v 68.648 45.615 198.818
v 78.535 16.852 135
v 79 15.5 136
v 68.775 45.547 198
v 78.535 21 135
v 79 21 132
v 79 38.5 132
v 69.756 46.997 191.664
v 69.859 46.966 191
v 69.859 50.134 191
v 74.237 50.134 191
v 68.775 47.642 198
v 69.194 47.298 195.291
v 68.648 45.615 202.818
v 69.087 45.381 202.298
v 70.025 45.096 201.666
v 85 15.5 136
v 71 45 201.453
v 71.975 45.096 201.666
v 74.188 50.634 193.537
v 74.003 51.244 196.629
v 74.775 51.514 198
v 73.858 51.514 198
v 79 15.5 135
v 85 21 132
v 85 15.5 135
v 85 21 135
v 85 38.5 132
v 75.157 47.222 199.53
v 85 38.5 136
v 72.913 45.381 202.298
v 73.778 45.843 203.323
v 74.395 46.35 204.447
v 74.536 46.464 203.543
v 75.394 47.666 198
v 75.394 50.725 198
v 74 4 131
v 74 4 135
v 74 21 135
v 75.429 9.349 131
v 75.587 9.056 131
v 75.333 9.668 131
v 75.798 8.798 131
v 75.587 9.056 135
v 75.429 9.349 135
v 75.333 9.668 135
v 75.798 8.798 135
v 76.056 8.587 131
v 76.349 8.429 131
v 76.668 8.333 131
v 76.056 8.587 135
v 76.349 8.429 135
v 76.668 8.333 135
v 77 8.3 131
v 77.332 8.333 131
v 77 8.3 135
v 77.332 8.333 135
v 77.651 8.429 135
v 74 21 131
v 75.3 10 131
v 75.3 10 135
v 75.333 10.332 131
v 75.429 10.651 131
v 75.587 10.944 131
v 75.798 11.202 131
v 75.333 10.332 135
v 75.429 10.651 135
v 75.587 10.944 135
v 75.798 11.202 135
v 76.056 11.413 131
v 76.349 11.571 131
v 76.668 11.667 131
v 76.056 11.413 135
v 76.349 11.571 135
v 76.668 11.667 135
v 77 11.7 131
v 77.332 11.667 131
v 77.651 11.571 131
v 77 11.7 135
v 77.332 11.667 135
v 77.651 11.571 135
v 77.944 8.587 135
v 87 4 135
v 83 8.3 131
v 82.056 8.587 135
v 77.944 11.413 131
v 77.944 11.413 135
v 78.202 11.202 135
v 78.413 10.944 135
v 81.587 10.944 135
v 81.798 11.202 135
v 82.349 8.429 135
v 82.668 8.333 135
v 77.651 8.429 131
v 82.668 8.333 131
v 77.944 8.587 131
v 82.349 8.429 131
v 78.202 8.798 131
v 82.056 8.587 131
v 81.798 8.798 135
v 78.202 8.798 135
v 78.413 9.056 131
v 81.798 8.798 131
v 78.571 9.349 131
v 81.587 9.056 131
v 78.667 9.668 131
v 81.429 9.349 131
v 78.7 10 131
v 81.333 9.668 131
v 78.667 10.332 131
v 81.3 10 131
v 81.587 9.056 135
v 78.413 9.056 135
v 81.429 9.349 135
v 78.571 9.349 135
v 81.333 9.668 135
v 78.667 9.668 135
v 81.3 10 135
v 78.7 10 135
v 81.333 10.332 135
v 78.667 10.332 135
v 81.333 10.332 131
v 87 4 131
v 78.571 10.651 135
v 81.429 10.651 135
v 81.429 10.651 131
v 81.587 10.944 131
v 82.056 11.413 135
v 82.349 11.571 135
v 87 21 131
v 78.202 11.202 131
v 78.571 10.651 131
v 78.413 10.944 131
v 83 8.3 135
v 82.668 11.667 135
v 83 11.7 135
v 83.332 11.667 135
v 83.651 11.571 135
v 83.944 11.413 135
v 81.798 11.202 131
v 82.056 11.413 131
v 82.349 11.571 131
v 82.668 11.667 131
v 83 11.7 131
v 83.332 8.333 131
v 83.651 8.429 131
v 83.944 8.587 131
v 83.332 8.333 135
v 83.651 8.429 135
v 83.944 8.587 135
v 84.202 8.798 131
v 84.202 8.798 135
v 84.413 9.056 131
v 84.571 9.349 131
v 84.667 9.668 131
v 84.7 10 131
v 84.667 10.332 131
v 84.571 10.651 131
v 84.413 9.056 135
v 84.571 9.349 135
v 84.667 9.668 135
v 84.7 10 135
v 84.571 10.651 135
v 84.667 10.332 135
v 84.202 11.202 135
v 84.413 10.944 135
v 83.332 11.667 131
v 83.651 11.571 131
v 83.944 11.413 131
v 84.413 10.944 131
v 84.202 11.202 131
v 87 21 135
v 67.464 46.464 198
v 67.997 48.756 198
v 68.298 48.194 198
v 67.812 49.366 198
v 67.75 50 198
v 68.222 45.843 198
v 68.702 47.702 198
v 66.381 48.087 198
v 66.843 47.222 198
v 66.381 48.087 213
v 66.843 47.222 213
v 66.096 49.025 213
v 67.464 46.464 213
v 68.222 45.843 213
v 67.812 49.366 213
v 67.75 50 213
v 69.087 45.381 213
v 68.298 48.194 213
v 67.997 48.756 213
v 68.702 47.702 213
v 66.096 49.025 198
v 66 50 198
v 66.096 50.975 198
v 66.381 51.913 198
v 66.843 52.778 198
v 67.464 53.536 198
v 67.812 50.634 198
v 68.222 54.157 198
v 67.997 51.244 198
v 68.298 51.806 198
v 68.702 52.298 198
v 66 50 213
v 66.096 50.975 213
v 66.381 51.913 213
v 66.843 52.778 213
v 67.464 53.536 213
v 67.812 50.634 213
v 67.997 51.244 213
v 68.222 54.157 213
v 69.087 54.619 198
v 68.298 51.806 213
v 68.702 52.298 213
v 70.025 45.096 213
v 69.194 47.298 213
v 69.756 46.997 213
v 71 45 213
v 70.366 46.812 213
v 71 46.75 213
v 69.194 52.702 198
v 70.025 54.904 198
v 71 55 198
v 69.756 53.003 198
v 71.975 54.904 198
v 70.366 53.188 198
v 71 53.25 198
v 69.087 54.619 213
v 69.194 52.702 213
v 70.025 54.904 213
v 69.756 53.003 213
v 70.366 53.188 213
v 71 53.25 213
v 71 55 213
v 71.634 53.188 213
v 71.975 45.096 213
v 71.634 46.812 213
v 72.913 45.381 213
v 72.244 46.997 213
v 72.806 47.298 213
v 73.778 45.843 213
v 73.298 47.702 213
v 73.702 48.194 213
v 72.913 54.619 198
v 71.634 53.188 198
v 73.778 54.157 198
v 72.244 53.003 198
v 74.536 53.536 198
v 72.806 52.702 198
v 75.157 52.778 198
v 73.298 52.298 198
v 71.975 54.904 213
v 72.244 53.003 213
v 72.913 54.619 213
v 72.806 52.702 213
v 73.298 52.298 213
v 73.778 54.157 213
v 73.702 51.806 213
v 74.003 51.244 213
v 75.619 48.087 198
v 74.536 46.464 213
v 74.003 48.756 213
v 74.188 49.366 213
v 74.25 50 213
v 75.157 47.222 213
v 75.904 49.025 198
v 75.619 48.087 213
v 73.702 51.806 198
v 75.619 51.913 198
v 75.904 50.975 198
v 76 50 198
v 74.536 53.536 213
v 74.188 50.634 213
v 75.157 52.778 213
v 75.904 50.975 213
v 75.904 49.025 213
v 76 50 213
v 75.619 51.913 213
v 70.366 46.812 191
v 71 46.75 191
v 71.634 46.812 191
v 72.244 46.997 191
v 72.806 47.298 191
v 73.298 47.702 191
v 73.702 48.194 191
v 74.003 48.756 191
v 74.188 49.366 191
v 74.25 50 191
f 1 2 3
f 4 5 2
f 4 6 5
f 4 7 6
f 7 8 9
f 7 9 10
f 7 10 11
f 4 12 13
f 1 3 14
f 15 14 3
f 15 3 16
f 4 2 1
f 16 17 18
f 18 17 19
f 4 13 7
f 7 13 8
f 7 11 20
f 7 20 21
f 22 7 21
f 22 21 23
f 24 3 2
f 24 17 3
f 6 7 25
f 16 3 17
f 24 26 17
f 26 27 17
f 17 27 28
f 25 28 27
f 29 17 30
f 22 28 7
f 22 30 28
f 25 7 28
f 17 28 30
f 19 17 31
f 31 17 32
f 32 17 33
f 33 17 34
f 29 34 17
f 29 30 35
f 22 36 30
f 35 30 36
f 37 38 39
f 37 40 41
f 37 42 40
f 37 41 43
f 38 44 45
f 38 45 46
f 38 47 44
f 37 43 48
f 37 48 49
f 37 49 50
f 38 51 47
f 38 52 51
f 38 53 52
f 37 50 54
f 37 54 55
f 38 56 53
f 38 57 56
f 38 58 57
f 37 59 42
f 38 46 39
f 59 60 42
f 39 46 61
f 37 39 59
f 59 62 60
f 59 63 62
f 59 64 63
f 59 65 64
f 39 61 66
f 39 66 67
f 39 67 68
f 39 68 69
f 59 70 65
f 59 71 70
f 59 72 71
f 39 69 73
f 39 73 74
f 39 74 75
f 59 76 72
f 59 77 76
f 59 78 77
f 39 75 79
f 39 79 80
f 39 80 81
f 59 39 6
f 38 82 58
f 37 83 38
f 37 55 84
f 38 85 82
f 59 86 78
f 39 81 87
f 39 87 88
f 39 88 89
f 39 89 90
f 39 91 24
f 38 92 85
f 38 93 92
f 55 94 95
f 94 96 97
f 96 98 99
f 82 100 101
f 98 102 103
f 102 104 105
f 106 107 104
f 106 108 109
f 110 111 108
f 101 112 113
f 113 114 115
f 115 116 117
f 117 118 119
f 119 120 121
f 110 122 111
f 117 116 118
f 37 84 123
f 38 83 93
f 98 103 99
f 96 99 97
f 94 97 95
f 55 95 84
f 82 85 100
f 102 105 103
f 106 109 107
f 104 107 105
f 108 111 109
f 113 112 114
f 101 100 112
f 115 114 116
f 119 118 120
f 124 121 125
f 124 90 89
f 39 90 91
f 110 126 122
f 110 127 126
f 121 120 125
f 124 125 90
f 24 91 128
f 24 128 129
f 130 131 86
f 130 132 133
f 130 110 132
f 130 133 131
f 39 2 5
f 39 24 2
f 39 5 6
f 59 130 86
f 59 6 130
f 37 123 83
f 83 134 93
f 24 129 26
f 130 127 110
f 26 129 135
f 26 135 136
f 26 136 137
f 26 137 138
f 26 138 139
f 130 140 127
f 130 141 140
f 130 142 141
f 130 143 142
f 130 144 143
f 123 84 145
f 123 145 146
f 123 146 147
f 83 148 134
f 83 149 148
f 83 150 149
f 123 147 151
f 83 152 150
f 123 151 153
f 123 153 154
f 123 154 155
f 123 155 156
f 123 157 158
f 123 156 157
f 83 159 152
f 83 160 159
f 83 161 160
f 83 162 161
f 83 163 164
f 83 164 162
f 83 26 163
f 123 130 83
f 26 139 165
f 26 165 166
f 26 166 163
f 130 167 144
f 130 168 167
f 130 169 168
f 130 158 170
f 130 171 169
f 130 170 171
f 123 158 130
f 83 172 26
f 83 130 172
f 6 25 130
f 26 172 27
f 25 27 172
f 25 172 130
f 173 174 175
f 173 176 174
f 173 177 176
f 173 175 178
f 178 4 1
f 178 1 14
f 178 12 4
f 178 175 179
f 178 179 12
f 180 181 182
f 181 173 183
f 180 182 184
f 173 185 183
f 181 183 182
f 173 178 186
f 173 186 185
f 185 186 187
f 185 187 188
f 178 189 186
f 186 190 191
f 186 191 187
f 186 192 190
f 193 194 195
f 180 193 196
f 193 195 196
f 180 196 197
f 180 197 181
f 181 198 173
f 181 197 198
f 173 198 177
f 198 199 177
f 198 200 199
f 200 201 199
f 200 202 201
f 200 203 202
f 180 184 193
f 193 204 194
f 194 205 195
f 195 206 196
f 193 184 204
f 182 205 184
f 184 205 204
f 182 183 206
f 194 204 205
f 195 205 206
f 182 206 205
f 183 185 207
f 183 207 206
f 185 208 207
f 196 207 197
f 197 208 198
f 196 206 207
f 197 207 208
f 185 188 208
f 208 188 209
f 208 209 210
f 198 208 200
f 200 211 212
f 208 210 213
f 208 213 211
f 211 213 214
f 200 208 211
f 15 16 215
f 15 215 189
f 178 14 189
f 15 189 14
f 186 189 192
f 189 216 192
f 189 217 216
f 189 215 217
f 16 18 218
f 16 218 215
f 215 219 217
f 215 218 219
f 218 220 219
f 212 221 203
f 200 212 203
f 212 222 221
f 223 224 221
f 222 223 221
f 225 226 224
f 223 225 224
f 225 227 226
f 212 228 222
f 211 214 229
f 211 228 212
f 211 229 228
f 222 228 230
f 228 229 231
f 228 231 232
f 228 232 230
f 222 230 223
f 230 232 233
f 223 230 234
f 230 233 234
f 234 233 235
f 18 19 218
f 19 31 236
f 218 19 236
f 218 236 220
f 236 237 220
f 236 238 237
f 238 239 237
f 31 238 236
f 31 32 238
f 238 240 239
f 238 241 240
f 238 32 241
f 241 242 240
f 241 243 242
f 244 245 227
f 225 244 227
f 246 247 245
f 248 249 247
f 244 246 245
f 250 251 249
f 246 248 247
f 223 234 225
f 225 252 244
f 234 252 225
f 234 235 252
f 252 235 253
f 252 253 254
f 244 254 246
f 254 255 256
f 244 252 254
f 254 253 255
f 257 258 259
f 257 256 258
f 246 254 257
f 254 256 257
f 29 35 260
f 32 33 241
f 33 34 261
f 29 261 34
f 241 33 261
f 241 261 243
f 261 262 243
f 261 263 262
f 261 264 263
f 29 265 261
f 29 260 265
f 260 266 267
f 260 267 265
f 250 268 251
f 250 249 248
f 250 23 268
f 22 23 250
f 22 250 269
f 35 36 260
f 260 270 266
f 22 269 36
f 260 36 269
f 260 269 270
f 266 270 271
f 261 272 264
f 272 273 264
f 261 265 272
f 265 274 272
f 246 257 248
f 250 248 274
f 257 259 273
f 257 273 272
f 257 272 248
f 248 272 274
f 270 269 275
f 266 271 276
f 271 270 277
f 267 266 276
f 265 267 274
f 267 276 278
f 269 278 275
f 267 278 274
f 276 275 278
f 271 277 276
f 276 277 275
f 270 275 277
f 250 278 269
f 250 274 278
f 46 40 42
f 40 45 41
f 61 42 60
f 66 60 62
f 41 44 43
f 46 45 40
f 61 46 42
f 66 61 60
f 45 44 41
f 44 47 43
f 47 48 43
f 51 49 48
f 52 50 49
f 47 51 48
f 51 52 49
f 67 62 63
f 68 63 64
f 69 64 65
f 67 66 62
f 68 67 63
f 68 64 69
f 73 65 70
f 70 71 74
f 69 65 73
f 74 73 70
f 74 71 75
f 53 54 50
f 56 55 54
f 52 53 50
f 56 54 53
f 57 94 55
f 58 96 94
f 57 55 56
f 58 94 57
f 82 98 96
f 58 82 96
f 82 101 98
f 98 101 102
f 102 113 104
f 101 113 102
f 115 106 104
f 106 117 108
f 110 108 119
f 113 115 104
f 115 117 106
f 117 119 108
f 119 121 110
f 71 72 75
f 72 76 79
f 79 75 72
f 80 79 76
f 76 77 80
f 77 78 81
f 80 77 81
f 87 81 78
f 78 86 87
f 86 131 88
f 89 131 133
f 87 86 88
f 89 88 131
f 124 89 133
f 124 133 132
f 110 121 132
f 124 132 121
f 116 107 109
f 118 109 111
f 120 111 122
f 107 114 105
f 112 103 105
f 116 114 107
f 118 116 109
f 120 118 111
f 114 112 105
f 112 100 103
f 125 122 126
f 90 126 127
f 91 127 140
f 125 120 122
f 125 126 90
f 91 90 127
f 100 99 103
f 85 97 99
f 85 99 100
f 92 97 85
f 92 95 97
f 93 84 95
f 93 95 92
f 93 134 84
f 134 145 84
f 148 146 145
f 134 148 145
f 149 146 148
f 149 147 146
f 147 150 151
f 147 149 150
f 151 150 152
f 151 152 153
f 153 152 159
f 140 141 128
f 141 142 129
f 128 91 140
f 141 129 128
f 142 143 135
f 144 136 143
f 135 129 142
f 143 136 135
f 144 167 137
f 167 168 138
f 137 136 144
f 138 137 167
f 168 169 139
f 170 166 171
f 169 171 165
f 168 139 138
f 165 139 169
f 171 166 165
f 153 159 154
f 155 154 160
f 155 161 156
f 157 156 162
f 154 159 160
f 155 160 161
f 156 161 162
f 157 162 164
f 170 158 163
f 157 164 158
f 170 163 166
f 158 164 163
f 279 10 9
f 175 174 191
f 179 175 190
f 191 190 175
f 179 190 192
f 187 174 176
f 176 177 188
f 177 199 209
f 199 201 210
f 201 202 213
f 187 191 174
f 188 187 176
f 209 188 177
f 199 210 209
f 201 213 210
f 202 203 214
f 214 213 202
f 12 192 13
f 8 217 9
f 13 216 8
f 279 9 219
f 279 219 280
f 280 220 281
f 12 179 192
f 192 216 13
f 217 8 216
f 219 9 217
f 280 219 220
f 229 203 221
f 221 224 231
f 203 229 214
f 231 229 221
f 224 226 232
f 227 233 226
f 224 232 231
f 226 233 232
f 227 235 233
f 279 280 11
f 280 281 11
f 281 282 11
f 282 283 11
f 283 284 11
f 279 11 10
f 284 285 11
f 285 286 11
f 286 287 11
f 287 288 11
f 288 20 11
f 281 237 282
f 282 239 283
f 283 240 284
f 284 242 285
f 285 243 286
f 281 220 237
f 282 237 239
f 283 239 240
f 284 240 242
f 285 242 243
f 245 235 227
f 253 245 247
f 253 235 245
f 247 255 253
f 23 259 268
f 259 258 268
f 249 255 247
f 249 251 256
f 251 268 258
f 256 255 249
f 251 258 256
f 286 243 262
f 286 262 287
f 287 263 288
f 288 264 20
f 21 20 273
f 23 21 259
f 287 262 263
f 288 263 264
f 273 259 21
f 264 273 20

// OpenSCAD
// =============================================================================
// NOVA HEAD EAR — one fennec ear / WiFi antenna mast, bolts to the head pad
// =============================================================================
// SPLIT OFF the head (2026-07-07 review): the tall leaning ears made the head a
// warpy, support-heavy multi-branch print. As a separate part the head body
// prints compact + the ears print flat. Also modular: the ears are OPTIONAL
// (WiFi-antenna decision, backlog #32) — no antennas -> don't print/attach them.
//
// This file = the +Y (RIGHT) ear. Build the LEFT with head_ear_L.scad (mirror).
// MOUNT: the foot flange sits on the head ear-pad (top z131, x74..87) and bolts
//   DOWN with 2x M3 into the pad's heat-sets at (77,±10),(83,±10). The bolts sit
//   INBOARD (y10) of the panel base (y15.5+) so a driver drops straight onto
//   them clear of the panel (access audit 2026-07-08). The broad triangular
//   panel rises + splays out (behind the L2, x<89 -> rear LiDAR sector only). Antenna BOSS at the tip: SMA bulkhead, whip points UP (omni
//   RF). Cable: U.FL->SMA pigtail up the neck -> the bulkhead (route TBD once
//   antennas are decided).
// PRINT: PETG-CF (low warp) or PA6-CF, panel FLAT on the bed, minimal supports,
//   ~5 g. print 2 (R here + L mirror).

$fn = 32; EPS = 0.05; M3_CLEAR = 3.4;
PAD_Z = 131;        // head ear-pad top = the bolt face

module head_ear() {
    difference() {
        union() {
            // foot flange on the pad (x74..87, y4..21) — bolts down into the pad
            // (extends to y4 so the y10 bolts clear the panel base above them)
            translate([74, 4, PAD_Z]) cube([13, 17, 4]);
            // broad triangular panel, rising + splaying out, leaning back
            hull() {
                translate([82, 18, PAD_Z + 3]) cube([6, 5, 4], center = true);
                translate([82, 36, PAD_Z + 3]) cube([6, 5, 4], center = true);
                translate([71, 50, 205])       cube([6, 5, 4], center = true);
            }
            // antenna boss at the tip (holds the SMA bulkhead)
            translate([71, 50, 198]) cylinder(d = 10, h = 15);
        }
        // 2x M3 foot bolts (clearance, from the foot top down into the pad)
        for (ex = [77, 83])
            translate([ex, 10, PAD_Z - EPS]) cylinder(d = M3_CLEAR, h = 4 + 2 * EPS);
        // SMA bulkhead bore up the tip (whip UP)
        translate([71, 50, 191]) cylinder(d = 6.5, h = 30);
    }
}

head_ear();
